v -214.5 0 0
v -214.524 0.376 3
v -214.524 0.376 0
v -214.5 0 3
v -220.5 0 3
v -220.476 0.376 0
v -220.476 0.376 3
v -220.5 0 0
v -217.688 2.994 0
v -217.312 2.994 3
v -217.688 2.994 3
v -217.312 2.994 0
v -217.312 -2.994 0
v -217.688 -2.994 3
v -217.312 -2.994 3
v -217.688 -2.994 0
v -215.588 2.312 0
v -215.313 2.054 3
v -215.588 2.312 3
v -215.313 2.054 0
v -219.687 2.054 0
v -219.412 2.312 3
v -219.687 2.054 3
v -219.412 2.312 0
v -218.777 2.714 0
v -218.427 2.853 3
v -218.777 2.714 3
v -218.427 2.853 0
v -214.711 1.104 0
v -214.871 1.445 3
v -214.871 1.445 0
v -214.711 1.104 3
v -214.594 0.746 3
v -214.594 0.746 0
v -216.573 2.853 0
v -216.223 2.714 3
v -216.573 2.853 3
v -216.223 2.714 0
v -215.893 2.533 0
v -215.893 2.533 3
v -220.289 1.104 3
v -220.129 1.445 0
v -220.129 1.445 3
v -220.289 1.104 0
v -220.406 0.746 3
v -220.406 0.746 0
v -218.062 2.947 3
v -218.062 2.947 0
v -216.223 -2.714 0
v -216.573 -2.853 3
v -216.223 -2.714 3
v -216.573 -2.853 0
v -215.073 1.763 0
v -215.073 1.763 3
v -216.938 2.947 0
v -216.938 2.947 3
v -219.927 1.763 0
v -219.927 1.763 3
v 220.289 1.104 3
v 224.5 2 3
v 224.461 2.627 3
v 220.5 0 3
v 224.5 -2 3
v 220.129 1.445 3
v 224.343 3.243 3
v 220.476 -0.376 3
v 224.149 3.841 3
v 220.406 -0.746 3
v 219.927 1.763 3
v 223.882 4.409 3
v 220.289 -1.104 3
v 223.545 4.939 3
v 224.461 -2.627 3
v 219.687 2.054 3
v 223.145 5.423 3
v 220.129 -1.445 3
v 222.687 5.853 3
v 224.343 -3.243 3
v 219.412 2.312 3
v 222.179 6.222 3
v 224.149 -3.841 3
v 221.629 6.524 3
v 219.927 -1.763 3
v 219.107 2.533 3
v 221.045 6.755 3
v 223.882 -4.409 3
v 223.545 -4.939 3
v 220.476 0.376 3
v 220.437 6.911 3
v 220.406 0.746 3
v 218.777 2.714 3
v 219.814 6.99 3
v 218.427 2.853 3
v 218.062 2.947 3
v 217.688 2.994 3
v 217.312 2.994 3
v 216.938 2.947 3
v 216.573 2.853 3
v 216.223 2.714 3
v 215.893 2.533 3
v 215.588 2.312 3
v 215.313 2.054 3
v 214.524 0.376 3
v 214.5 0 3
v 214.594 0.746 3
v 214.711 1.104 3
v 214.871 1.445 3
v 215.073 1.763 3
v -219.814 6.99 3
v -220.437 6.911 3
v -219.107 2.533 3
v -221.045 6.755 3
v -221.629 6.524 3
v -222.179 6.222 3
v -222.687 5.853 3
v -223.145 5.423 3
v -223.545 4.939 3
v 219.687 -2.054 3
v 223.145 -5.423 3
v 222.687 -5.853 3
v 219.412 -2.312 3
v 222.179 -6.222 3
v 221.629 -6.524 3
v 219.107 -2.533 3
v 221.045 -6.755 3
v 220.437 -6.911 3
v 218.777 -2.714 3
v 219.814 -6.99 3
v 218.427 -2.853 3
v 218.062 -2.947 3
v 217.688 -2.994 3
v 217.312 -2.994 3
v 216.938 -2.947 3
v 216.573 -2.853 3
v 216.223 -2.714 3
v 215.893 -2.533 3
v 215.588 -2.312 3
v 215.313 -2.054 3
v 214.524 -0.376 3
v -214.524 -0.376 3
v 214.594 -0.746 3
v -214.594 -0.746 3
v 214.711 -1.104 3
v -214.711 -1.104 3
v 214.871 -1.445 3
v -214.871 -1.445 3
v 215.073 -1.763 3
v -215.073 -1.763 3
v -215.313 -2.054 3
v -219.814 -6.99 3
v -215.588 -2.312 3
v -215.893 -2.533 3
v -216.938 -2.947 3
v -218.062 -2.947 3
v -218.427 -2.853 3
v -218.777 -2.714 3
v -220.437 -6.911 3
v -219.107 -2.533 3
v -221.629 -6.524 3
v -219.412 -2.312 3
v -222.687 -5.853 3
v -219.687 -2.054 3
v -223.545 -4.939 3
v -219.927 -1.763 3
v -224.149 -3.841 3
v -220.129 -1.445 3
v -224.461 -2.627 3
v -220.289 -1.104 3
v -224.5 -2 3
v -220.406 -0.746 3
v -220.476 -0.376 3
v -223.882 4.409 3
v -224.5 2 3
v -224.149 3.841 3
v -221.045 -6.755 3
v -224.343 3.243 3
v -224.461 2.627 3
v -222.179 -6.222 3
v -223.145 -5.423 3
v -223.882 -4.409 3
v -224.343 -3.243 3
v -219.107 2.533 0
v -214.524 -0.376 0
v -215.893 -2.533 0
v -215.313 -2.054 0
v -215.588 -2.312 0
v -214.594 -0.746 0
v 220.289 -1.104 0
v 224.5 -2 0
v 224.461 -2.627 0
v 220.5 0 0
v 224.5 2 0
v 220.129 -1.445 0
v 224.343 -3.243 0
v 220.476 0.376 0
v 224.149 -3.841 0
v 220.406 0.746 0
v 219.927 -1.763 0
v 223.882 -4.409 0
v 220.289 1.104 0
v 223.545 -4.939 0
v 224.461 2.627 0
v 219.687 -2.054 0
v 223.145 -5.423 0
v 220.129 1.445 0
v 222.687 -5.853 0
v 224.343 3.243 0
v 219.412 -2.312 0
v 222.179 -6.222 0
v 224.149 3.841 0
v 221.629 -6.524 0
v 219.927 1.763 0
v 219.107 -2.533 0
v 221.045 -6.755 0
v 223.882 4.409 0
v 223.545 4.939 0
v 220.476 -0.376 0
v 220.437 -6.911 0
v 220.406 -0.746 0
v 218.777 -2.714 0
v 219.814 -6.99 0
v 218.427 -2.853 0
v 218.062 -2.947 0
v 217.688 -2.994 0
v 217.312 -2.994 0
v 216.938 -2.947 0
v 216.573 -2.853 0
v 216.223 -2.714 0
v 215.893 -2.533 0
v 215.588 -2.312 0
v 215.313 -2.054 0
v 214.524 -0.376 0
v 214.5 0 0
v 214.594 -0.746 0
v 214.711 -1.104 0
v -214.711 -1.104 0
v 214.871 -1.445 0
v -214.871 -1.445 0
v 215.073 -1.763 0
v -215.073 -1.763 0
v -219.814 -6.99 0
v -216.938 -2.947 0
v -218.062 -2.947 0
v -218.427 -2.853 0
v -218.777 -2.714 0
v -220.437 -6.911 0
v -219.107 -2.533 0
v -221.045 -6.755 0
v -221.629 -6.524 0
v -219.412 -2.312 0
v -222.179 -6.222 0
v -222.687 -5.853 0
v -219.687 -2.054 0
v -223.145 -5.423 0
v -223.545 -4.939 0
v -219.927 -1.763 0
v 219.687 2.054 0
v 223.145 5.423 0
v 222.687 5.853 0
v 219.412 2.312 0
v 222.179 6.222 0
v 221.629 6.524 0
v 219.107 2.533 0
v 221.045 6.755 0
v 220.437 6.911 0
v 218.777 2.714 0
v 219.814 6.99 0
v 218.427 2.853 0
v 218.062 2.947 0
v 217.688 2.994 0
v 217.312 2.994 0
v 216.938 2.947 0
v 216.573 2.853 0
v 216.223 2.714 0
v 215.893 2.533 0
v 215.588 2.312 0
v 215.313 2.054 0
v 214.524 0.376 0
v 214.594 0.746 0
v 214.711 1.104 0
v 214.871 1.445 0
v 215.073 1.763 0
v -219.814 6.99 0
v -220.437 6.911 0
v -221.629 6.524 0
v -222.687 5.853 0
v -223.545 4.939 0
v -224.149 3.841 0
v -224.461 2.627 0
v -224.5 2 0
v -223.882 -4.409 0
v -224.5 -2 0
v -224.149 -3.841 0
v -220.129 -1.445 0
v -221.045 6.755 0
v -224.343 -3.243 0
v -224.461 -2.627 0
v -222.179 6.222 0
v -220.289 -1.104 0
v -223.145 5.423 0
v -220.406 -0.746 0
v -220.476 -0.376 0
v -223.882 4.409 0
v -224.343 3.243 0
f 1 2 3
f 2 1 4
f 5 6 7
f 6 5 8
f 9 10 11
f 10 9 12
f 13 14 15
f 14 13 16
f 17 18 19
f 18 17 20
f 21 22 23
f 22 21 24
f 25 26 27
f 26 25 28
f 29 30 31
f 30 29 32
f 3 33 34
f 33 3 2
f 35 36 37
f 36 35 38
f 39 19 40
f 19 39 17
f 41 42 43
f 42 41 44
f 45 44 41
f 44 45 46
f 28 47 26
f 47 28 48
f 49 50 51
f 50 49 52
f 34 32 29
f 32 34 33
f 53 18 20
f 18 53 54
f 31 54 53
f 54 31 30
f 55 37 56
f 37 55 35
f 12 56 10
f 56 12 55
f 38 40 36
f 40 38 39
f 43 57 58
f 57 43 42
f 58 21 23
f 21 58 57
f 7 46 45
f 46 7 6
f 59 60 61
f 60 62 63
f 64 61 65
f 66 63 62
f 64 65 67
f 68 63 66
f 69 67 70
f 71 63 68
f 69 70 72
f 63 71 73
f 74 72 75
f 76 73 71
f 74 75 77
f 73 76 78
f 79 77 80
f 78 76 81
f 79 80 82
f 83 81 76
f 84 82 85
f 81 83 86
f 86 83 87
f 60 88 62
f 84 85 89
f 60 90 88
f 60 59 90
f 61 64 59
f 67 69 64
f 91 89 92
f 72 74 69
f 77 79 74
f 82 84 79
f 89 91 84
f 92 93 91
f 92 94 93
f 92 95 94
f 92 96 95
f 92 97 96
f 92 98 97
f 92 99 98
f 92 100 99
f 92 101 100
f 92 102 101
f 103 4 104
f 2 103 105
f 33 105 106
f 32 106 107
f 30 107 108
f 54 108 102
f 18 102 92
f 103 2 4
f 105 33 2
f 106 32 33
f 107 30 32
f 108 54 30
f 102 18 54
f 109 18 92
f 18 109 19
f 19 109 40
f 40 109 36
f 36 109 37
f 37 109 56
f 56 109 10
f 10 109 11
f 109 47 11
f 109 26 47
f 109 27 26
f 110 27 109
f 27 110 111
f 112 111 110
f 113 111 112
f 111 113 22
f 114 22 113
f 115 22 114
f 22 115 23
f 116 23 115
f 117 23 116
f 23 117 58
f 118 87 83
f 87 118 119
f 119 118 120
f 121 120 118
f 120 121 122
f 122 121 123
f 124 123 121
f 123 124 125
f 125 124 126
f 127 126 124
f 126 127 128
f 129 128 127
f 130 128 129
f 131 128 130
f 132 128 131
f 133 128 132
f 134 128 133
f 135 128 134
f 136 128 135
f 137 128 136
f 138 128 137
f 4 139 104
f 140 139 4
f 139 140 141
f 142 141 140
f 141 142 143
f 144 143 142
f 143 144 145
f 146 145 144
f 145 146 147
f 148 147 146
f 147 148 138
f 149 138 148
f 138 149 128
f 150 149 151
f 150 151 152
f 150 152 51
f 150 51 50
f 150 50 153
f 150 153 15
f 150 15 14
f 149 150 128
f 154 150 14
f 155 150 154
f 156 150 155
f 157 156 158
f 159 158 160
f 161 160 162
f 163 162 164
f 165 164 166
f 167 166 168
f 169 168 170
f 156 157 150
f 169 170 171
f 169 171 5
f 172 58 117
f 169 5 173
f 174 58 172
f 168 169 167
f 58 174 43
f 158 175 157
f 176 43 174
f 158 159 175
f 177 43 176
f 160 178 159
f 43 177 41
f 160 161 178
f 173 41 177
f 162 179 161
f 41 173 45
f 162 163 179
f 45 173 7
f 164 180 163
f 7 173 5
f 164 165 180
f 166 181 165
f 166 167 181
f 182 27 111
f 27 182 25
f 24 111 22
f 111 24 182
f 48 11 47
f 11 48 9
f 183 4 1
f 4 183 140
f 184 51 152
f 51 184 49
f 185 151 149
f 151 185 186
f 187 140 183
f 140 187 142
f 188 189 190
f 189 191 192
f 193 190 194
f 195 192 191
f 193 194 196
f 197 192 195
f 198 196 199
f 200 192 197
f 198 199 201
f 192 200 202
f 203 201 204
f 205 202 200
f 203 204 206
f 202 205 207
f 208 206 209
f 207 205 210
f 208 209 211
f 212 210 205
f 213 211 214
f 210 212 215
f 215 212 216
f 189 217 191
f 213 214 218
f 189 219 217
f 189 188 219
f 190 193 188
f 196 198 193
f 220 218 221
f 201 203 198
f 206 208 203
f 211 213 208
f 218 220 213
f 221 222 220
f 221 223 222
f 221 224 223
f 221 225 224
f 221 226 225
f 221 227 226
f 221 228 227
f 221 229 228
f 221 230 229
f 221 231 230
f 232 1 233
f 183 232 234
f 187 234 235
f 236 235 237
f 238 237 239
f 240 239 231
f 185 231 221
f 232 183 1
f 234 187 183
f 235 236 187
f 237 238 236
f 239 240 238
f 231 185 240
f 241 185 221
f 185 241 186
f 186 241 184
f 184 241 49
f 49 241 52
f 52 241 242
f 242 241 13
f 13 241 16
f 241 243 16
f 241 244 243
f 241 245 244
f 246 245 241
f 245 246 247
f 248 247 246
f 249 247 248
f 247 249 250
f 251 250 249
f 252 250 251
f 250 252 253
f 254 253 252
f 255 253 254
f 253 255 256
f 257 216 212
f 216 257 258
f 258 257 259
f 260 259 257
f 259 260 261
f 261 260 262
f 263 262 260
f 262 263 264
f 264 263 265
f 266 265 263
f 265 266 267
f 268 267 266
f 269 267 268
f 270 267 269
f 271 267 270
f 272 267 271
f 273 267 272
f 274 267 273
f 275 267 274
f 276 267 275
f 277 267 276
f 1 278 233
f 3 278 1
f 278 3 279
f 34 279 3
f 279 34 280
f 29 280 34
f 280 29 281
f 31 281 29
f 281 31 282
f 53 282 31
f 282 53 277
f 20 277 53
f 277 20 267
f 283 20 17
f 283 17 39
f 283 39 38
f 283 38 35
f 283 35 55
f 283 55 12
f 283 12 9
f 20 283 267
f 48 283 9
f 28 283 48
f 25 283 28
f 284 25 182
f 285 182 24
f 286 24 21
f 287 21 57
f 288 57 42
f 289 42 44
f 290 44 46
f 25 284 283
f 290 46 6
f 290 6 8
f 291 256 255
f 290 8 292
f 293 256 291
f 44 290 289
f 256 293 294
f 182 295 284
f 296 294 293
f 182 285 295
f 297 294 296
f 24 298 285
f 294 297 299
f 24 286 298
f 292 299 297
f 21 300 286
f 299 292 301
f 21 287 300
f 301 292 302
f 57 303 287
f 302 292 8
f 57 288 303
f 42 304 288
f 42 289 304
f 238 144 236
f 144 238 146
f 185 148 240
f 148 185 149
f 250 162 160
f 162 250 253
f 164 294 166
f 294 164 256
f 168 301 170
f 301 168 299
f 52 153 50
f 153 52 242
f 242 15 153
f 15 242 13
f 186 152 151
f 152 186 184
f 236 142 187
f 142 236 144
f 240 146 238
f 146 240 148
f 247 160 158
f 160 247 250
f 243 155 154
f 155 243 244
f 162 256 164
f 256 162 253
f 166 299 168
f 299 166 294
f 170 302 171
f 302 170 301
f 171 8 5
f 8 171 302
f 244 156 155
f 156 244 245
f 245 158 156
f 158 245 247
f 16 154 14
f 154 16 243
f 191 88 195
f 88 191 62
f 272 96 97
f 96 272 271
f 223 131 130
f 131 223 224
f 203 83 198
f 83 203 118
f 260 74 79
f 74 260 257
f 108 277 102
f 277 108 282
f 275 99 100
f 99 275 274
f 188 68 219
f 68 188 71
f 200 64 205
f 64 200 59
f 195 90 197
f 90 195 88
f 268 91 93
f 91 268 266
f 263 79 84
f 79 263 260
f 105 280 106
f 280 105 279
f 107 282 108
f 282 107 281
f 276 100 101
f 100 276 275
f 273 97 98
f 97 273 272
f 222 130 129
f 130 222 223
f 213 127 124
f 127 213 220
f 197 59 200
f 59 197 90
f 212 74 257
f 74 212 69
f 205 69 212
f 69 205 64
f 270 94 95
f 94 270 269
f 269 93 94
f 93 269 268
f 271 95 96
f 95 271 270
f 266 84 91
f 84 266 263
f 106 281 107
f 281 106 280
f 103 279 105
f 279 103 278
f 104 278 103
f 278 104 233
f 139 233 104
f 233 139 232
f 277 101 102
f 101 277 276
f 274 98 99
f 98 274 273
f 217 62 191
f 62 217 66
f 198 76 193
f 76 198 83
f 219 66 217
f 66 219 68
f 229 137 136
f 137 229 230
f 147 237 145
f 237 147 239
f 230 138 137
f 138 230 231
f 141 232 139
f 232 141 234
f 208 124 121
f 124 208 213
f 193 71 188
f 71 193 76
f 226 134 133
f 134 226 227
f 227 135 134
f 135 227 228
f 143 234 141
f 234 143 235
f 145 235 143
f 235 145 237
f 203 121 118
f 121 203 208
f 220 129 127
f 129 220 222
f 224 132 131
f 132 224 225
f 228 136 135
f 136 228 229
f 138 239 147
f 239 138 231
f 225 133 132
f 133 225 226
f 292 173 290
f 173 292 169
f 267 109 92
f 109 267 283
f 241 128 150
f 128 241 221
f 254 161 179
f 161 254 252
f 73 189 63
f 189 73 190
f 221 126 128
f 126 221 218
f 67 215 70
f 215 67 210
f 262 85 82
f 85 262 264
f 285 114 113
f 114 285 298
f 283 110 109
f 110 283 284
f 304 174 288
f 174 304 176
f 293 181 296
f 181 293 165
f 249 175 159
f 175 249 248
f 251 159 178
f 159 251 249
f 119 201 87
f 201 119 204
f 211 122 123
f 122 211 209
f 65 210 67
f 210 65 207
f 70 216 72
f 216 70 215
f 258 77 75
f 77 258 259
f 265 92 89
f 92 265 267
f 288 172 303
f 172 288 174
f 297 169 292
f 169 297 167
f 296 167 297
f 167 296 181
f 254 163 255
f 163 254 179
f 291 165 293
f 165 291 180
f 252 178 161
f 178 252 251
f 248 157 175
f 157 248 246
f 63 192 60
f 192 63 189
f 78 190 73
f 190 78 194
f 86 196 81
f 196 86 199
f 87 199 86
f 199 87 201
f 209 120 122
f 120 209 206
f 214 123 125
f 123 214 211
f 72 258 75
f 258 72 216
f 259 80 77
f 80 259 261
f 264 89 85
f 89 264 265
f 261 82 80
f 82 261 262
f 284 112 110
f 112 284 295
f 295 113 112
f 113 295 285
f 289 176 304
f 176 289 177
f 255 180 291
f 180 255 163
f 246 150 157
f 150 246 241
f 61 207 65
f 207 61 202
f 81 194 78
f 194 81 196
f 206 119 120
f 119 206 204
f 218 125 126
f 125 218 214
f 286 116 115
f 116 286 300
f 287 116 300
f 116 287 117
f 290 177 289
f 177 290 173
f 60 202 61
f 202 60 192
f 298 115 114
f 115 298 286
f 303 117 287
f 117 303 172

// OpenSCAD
$fn = 50;


difference() {
	union() {
		hull() {
			translate(v = [-219.5000000000, 2.0000000000, 0]) {
				cylinder(h = 3, r = 5);
			}
			translate(v = [219.5000000000, 2.0000000000, 0]) {
				cylinder(h = 3, r = 5);
			}
			translate(v = [-219.5000000000, -2.0000000000, 0]) {
				cylinder(h = 3, r = 5);
			}
			translate(v = [219.5000000000, -2.0000000000, 0]) {
				cylinder(h = 3, r = 5);
			}
		}
	}
	union() {
		translate(v = [-217.5000000000, 0.0000000000, -100.0000000000]) {
			cylinder(h = 200, r = 3.0000000000);
		}
		translate(v = [-217.5000000000, 0.0000000000, -100.0000000000]) {
			cylinder(h = 200, r = 3.0000000000);
		}
		translate(v = [217.5000000000, 0.0000000000, -100.0000000000]) {
			cylinder(h = 200, r = 3.0000000000);
		}
		translate(v = [217.5000000000, 0.0000000000, -100.0000000000]) {
			cylinder(h = 200, r = 3.0000000000);
		}
	}
}
